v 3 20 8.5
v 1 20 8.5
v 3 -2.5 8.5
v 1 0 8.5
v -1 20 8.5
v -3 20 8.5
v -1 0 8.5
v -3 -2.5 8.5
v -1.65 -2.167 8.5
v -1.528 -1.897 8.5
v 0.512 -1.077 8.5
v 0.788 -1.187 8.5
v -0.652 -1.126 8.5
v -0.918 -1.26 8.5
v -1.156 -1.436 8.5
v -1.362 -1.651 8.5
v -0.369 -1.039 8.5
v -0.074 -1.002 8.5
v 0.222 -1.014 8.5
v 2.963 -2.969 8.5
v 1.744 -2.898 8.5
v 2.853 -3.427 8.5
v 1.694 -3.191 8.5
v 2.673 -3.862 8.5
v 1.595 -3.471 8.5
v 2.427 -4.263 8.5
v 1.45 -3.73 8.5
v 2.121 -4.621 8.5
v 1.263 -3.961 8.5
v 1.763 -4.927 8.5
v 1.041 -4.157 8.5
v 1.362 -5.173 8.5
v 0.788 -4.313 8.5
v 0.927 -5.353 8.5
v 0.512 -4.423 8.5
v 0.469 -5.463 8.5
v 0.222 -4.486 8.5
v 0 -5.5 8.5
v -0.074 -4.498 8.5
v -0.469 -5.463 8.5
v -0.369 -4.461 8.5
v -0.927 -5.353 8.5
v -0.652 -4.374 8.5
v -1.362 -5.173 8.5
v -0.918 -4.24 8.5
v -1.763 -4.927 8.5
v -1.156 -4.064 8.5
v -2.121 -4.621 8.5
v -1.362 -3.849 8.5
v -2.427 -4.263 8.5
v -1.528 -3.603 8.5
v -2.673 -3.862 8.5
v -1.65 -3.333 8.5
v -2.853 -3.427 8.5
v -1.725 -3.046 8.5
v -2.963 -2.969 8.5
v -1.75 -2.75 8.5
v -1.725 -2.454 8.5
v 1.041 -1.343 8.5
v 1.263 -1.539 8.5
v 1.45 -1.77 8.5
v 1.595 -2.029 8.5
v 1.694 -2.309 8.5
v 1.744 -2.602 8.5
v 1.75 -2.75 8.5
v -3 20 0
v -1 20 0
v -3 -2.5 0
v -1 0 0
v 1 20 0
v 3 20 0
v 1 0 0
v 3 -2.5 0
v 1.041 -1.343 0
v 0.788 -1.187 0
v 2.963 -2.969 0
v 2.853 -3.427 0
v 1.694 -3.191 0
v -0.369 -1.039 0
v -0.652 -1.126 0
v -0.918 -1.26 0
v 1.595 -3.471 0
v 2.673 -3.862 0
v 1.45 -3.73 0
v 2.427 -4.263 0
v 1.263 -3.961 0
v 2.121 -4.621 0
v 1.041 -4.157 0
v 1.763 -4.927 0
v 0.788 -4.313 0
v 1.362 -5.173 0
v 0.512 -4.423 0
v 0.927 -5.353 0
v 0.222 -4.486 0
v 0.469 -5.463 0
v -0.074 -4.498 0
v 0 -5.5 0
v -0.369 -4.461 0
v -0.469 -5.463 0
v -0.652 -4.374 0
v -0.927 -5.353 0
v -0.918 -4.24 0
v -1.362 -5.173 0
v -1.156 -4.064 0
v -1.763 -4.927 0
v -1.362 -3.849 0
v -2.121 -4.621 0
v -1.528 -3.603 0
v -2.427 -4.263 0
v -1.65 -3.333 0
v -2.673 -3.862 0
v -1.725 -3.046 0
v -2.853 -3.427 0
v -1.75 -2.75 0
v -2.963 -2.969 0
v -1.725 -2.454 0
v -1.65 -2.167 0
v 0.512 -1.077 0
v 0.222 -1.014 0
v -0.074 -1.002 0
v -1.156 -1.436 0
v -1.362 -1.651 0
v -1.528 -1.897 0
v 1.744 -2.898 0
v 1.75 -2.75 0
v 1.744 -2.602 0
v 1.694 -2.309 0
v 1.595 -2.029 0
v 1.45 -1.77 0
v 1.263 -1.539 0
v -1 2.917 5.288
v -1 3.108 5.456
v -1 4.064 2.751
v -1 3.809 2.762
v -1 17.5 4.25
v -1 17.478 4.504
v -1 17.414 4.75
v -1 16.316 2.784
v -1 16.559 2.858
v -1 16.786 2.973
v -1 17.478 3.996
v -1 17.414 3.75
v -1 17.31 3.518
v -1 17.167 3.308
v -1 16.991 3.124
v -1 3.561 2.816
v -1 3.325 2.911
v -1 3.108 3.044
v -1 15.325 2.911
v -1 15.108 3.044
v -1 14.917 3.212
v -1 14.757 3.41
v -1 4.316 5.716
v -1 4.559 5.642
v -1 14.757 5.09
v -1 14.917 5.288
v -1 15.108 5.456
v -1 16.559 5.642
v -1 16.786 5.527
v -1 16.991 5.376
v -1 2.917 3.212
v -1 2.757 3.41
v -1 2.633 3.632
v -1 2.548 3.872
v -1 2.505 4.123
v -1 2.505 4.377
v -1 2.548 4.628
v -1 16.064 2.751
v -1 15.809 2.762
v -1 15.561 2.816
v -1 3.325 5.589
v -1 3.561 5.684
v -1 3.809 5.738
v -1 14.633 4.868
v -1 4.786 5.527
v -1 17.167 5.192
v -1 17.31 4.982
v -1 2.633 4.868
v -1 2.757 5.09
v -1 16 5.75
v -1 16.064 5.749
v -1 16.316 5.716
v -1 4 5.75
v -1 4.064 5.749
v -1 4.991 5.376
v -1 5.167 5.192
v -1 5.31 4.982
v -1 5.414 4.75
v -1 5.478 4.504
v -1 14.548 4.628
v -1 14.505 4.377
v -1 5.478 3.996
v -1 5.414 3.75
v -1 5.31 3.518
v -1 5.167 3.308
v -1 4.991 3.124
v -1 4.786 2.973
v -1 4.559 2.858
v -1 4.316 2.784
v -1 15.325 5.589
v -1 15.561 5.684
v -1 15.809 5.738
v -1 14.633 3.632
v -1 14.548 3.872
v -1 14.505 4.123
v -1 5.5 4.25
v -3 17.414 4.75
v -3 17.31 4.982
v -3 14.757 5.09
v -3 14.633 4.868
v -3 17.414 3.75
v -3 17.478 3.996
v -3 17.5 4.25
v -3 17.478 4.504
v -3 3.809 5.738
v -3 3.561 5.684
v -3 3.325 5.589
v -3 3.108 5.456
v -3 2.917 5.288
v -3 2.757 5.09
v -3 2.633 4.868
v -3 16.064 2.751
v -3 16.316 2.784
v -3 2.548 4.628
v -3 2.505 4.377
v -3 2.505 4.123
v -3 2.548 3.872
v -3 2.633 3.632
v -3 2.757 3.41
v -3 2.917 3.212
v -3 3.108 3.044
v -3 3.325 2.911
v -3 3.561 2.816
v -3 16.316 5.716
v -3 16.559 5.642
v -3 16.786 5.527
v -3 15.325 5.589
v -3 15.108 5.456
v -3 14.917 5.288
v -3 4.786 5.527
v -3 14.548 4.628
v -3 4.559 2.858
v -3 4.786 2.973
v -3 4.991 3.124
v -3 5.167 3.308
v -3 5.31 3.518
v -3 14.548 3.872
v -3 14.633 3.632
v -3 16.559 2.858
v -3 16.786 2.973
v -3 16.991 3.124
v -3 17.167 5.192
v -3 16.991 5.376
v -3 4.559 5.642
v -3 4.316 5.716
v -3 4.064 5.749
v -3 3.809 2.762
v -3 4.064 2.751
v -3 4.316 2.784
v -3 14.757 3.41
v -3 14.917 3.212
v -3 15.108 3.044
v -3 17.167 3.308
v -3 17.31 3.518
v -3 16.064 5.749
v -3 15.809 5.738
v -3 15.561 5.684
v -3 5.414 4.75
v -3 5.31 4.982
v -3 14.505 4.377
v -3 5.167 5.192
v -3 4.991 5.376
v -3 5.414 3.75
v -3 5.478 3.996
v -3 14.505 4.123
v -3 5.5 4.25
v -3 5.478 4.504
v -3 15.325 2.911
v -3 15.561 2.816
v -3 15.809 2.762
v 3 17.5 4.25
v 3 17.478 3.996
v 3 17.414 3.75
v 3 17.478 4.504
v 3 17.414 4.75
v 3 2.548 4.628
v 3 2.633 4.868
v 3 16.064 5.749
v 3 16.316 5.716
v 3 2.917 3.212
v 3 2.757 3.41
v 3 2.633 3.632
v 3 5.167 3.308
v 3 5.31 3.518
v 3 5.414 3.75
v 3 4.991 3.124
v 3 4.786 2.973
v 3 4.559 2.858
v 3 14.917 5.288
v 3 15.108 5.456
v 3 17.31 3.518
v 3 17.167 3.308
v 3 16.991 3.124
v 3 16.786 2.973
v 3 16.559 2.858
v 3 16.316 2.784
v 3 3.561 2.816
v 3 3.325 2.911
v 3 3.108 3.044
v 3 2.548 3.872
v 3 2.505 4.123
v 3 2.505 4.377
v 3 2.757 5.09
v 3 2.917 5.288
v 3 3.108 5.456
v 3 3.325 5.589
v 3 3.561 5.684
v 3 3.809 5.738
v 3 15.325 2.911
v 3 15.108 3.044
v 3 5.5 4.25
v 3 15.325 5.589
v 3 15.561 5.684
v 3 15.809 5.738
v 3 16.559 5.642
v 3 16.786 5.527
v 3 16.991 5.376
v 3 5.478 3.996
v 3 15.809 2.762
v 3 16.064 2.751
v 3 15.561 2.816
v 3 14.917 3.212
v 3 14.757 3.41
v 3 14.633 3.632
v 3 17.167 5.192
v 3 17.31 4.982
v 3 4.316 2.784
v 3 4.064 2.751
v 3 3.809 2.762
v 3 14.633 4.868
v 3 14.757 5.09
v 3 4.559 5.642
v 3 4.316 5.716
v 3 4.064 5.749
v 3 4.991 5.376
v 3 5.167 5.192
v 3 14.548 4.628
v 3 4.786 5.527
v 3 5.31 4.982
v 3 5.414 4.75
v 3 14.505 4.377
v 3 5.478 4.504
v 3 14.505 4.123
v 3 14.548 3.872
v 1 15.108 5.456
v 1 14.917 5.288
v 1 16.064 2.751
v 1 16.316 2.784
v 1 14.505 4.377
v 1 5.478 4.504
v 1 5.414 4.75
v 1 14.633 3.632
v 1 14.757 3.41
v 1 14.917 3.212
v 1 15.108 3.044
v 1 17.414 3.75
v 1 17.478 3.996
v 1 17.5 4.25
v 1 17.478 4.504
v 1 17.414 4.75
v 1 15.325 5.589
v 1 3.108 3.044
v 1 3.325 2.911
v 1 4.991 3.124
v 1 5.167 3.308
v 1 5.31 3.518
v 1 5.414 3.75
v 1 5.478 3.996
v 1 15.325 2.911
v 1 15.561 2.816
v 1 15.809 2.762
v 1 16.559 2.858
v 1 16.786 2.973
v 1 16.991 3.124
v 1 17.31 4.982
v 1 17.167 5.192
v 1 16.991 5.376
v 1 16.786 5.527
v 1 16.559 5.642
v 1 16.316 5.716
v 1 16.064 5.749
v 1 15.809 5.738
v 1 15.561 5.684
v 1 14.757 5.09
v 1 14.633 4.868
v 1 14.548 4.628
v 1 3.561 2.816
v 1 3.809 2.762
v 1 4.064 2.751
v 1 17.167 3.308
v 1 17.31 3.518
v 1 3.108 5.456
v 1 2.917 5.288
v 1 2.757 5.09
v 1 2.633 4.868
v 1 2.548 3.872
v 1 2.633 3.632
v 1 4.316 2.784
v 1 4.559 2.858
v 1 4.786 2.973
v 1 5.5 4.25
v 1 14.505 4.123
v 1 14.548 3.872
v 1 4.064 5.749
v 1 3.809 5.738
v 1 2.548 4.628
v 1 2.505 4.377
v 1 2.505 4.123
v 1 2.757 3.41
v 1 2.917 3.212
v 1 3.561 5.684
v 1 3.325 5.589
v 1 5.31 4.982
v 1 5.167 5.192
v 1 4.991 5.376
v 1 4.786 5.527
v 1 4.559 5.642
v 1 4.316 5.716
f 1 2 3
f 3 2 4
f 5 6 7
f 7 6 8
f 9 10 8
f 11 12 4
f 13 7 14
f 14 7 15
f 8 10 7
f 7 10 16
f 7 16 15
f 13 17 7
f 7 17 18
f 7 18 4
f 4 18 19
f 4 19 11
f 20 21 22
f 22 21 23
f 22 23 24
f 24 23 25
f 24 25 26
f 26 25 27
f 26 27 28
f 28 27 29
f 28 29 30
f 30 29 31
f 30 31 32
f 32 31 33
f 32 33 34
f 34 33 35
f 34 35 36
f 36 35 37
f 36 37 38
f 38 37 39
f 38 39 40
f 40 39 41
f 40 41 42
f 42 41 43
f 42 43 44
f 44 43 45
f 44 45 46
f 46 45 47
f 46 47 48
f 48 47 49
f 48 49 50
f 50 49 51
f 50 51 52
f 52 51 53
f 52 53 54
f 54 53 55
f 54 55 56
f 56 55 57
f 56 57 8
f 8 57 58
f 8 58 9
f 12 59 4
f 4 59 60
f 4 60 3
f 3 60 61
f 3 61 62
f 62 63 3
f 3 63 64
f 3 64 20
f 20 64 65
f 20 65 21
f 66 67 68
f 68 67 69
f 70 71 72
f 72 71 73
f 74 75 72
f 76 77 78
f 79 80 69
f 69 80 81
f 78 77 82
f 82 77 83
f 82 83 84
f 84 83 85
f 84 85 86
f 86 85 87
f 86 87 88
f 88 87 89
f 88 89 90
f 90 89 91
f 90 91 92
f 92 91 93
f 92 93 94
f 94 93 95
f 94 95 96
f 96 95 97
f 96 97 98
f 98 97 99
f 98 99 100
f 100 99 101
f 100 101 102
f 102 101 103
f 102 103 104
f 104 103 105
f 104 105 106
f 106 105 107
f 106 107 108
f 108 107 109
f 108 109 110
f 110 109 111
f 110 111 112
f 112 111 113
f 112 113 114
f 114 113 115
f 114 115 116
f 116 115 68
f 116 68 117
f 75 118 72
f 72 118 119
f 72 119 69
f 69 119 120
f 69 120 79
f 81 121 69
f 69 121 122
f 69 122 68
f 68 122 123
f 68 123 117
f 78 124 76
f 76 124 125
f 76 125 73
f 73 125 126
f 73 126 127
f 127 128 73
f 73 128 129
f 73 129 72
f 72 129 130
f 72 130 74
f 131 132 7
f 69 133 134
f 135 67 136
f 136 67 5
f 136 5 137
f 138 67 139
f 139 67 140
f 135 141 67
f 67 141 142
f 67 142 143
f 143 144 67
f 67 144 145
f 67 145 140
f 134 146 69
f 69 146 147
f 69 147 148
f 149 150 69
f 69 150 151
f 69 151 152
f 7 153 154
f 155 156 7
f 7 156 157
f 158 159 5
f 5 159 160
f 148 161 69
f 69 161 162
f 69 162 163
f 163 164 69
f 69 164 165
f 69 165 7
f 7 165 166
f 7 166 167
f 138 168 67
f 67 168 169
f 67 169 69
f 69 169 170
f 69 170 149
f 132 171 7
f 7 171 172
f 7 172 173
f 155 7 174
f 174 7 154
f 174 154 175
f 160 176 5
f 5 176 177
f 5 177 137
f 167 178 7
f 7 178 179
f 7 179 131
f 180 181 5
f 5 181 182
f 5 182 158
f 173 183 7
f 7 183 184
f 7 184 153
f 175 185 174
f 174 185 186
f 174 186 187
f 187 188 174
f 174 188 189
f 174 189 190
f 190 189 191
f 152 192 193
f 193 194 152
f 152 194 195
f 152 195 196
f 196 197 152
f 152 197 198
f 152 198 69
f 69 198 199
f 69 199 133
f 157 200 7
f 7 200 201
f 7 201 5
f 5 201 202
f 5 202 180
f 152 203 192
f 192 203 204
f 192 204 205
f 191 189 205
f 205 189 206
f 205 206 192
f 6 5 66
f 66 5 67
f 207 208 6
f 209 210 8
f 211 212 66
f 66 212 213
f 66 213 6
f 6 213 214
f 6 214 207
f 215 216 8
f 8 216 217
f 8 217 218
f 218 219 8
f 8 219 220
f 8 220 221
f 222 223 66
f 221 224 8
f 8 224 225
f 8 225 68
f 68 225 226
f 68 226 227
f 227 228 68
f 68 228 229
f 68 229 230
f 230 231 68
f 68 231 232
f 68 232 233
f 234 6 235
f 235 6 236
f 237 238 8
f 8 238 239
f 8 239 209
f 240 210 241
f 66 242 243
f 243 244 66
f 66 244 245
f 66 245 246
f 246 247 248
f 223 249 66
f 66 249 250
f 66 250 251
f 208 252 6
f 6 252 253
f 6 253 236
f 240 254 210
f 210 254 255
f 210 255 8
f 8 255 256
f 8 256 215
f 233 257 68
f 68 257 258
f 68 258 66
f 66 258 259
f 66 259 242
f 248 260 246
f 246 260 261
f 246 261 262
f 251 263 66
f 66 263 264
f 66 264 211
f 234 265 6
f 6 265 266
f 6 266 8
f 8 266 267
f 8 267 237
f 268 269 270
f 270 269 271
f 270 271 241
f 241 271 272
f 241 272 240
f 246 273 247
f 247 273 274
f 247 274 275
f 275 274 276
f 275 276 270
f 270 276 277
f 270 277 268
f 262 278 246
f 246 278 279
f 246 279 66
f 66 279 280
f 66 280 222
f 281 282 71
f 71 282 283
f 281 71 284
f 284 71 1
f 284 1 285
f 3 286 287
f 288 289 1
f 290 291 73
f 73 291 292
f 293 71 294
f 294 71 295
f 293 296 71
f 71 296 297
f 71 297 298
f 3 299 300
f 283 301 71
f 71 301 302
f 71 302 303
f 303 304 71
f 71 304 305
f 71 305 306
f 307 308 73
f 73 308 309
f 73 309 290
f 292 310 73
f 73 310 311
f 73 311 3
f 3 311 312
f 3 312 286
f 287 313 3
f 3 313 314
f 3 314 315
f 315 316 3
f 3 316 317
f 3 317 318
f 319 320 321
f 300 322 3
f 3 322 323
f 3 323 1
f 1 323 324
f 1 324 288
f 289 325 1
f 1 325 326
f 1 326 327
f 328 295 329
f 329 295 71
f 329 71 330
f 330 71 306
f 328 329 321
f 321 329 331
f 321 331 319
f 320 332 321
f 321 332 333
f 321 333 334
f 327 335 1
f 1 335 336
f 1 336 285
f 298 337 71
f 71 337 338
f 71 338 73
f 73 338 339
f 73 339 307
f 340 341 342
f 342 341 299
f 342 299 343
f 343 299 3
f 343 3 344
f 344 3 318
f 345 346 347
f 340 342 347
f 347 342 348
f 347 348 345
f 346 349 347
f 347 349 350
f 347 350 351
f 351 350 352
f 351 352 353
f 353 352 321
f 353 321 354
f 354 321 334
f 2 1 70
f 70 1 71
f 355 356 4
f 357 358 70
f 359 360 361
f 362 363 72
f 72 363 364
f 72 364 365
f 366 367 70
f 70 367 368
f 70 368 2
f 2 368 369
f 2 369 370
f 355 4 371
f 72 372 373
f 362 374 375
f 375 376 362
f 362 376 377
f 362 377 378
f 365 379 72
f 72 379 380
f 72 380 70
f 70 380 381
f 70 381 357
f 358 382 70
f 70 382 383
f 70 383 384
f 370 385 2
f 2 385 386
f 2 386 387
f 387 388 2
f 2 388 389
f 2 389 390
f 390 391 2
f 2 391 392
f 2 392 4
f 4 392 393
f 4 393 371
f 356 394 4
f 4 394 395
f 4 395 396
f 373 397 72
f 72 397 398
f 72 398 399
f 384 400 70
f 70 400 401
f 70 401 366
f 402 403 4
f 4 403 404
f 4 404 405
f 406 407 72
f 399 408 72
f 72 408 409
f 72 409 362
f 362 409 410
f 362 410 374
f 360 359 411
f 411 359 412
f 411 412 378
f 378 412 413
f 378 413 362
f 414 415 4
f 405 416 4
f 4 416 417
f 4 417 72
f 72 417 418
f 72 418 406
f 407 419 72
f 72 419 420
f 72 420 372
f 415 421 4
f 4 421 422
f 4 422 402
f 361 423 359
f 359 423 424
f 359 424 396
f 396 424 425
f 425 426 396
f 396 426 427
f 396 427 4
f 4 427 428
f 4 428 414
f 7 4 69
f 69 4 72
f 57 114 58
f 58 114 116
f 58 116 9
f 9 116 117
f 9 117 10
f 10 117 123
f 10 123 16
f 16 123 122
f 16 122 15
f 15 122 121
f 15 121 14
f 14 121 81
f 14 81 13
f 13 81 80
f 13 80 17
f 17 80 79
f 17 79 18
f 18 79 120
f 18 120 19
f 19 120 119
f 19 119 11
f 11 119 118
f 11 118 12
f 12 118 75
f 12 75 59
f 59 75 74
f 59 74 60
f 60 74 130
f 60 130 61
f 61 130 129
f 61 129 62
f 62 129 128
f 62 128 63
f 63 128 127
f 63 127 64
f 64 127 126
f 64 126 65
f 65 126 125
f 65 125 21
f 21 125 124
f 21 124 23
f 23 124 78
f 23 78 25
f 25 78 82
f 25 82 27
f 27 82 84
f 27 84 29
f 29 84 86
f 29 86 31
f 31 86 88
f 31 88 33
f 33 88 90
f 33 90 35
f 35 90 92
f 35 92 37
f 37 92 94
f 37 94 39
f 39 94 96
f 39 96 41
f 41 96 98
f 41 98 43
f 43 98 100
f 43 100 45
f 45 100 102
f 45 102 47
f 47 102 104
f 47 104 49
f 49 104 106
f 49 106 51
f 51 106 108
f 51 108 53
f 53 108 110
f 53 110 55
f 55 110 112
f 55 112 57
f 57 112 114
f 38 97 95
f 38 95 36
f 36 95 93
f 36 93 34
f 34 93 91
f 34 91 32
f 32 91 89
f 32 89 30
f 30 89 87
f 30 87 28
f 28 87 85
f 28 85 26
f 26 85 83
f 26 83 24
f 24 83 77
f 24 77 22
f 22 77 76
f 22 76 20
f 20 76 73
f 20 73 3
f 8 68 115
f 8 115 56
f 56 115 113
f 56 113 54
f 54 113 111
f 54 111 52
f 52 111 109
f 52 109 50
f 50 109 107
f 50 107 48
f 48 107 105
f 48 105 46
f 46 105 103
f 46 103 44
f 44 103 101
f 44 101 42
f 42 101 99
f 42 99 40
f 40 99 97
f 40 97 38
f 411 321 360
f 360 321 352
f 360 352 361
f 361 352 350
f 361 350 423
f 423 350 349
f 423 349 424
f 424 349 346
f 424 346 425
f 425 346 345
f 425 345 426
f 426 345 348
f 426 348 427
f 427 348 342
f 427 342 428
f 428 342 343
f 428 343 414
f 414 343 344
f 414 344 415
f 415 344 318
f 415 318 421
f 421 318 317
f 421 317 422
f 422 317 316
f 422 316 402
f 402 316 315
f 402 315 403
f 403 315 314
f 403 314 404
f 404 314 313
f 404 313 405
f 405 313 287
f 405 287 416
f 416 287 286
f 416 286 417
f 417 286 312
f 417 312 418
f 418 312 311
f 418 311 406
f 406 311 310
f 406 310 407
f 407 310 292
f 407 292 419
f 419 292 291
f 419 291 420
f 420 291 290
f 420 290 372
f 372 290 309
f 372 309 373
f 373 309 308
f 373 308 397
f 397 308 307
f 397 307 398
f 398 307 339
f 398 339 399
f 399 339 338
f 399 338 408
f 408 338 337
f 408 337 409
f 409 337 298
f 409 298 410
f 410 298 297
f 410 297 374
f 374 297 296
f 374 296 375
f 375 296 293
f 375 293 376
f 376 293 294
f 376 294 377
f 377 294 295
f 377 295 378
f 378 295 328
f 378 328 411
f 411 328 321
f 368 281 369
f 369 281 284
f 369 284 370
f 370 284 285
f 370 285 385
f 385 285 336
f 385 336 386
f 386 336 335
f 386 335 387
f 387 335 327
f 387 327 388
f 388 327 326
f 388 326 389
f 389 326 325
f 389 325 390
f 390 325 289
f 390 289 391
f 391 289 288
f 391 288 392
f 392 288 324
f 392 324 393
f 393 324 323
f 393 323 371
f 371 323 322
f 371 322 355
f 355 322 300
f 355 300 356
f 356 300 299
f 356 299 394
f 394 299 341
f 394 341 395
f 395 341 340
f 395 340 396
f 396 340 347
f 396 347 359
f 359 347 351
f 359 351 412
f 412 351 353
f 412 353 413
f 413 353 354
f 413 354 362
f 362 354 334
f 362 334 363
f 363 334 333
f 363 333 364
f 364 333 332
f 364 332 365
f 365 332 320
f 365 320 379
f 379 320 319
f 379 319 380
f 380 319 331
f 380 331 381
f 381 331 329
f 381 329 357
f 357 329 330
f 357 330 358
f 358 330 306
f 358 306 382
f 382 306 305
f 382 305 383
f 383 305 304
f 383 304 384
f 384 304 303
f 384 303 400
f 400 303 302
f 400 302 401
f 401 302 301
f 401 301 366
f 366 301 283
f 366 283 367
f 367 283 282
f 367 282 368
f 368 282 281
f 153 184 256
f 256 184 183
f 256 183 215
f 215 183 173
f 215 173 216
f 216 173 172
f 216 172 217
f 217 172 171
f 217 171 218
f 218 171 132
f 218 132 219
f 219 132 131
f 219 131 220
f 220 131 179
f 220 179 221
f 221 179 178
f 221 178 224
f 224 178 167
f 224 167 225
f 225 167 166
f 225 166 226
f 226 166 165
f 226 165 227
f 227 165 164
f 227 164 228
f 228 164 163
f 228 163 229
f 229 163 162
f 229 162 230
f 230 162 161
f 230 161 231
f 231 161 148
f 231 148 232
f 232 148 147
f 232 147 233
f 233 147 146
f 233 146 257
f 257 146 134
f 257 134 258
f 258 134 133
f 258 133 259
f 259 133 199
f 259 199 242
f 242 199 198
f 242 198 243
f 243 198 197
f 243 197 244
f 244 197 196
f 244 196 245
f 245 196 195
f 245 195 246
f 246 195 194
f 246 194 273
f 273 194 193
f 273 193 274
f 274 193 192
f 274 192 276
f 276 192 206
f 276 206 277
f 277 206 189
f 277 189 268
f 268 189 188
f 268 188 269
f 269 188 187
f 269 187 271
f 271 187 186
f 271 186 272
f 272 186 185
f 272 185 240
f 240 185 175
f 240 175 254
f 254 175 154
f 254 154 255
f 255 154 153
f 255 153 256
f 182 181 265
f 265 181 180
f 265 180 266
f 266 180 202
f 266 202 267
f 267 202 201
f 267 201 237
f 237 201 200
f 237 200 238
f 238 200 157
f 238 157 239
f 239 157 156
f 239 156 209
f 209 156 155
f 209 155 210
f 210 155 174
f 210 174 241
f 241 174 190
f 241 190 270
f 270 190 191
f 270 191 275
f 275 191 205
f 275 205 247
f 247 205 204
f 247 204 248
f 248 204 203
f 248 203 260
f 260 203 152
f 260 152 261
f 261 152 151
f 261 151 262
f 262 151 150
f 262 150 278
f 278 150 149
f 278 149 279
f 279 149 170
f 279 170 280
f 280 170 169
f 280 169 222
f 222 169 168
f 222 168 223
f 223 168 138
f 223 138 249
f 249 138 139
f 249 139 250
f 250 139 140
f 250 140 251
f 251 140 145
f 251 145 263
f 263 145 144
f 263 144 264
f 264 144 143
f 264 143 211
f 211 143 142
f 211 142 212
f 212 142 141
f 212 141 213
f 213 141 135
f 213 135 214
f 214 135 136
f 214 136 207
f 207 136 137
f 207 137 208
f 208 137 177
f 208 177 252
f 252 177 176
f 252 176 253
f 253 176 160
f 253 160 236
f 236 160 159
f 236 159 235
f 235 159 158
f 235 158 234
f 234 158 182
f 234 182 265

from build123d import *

# Parameters (mm, degrees)
CROQUIS1_R              = 1.75
SALIENTE_EXTRUIR1_DEPTH = 8.5
REDONDEO1_R             = 3
CORTAR_EXTRUIR1_START   = -6
CROQUIS2_R              = 1.5
CORTAR_EXTRUIR1_DEPTH   = 6


with BuildPart() as part:
    # Croquis1 → Saliente-Extruir1 (new body)
    with BuildSketch(Plane.XY):
        Polygon((1, 0), (-1, 0), (-1, 20), (-3, 20), (-3, -5.5), (3, -5.5), (3, 20), (1, 20), align=None)
        with Locations((0, -2.75)):
            Circle(CROQUIS1_R, mode=Mode.SUBTRACT)
    extrude(amount=SALIENTE_EXTRUIR1_DEPTH)

    # Redondeo1
    redondeo1_edges = [part.edges().sort_by_distance(p)[0] for p in [
        (-3, -5.5, 4.25),
        (3, -5.5, 4.25),
    ]]
    fillet(redondeo1_edges, radius=REDONDEO1_R - 0.0001)  # a hair under: the kernel refuses the full size

    # Croquis2 → Cortar-Extruir1 (cut)
    with BuildSketch(Plane(origin=(3, 0, 0), x_dir=(0, 0, -1), z_dir=(1, 0, 0)).offset(CORTAR_EXTRUIR1_START)):
        with Locations(Location((-4.25, 16, 0), (0, 0, 90))):
            Circle(CROQUIS2_R)
        with Locations(Location((-4.25, 4, 0), (0, 0, 90))):
            Circle(CROQUIS2_R)
    extrude(amount=CORTAR_EXTRUIR1_DEPTH, mode=Mode.SUBTRACT)


solid = part.part
